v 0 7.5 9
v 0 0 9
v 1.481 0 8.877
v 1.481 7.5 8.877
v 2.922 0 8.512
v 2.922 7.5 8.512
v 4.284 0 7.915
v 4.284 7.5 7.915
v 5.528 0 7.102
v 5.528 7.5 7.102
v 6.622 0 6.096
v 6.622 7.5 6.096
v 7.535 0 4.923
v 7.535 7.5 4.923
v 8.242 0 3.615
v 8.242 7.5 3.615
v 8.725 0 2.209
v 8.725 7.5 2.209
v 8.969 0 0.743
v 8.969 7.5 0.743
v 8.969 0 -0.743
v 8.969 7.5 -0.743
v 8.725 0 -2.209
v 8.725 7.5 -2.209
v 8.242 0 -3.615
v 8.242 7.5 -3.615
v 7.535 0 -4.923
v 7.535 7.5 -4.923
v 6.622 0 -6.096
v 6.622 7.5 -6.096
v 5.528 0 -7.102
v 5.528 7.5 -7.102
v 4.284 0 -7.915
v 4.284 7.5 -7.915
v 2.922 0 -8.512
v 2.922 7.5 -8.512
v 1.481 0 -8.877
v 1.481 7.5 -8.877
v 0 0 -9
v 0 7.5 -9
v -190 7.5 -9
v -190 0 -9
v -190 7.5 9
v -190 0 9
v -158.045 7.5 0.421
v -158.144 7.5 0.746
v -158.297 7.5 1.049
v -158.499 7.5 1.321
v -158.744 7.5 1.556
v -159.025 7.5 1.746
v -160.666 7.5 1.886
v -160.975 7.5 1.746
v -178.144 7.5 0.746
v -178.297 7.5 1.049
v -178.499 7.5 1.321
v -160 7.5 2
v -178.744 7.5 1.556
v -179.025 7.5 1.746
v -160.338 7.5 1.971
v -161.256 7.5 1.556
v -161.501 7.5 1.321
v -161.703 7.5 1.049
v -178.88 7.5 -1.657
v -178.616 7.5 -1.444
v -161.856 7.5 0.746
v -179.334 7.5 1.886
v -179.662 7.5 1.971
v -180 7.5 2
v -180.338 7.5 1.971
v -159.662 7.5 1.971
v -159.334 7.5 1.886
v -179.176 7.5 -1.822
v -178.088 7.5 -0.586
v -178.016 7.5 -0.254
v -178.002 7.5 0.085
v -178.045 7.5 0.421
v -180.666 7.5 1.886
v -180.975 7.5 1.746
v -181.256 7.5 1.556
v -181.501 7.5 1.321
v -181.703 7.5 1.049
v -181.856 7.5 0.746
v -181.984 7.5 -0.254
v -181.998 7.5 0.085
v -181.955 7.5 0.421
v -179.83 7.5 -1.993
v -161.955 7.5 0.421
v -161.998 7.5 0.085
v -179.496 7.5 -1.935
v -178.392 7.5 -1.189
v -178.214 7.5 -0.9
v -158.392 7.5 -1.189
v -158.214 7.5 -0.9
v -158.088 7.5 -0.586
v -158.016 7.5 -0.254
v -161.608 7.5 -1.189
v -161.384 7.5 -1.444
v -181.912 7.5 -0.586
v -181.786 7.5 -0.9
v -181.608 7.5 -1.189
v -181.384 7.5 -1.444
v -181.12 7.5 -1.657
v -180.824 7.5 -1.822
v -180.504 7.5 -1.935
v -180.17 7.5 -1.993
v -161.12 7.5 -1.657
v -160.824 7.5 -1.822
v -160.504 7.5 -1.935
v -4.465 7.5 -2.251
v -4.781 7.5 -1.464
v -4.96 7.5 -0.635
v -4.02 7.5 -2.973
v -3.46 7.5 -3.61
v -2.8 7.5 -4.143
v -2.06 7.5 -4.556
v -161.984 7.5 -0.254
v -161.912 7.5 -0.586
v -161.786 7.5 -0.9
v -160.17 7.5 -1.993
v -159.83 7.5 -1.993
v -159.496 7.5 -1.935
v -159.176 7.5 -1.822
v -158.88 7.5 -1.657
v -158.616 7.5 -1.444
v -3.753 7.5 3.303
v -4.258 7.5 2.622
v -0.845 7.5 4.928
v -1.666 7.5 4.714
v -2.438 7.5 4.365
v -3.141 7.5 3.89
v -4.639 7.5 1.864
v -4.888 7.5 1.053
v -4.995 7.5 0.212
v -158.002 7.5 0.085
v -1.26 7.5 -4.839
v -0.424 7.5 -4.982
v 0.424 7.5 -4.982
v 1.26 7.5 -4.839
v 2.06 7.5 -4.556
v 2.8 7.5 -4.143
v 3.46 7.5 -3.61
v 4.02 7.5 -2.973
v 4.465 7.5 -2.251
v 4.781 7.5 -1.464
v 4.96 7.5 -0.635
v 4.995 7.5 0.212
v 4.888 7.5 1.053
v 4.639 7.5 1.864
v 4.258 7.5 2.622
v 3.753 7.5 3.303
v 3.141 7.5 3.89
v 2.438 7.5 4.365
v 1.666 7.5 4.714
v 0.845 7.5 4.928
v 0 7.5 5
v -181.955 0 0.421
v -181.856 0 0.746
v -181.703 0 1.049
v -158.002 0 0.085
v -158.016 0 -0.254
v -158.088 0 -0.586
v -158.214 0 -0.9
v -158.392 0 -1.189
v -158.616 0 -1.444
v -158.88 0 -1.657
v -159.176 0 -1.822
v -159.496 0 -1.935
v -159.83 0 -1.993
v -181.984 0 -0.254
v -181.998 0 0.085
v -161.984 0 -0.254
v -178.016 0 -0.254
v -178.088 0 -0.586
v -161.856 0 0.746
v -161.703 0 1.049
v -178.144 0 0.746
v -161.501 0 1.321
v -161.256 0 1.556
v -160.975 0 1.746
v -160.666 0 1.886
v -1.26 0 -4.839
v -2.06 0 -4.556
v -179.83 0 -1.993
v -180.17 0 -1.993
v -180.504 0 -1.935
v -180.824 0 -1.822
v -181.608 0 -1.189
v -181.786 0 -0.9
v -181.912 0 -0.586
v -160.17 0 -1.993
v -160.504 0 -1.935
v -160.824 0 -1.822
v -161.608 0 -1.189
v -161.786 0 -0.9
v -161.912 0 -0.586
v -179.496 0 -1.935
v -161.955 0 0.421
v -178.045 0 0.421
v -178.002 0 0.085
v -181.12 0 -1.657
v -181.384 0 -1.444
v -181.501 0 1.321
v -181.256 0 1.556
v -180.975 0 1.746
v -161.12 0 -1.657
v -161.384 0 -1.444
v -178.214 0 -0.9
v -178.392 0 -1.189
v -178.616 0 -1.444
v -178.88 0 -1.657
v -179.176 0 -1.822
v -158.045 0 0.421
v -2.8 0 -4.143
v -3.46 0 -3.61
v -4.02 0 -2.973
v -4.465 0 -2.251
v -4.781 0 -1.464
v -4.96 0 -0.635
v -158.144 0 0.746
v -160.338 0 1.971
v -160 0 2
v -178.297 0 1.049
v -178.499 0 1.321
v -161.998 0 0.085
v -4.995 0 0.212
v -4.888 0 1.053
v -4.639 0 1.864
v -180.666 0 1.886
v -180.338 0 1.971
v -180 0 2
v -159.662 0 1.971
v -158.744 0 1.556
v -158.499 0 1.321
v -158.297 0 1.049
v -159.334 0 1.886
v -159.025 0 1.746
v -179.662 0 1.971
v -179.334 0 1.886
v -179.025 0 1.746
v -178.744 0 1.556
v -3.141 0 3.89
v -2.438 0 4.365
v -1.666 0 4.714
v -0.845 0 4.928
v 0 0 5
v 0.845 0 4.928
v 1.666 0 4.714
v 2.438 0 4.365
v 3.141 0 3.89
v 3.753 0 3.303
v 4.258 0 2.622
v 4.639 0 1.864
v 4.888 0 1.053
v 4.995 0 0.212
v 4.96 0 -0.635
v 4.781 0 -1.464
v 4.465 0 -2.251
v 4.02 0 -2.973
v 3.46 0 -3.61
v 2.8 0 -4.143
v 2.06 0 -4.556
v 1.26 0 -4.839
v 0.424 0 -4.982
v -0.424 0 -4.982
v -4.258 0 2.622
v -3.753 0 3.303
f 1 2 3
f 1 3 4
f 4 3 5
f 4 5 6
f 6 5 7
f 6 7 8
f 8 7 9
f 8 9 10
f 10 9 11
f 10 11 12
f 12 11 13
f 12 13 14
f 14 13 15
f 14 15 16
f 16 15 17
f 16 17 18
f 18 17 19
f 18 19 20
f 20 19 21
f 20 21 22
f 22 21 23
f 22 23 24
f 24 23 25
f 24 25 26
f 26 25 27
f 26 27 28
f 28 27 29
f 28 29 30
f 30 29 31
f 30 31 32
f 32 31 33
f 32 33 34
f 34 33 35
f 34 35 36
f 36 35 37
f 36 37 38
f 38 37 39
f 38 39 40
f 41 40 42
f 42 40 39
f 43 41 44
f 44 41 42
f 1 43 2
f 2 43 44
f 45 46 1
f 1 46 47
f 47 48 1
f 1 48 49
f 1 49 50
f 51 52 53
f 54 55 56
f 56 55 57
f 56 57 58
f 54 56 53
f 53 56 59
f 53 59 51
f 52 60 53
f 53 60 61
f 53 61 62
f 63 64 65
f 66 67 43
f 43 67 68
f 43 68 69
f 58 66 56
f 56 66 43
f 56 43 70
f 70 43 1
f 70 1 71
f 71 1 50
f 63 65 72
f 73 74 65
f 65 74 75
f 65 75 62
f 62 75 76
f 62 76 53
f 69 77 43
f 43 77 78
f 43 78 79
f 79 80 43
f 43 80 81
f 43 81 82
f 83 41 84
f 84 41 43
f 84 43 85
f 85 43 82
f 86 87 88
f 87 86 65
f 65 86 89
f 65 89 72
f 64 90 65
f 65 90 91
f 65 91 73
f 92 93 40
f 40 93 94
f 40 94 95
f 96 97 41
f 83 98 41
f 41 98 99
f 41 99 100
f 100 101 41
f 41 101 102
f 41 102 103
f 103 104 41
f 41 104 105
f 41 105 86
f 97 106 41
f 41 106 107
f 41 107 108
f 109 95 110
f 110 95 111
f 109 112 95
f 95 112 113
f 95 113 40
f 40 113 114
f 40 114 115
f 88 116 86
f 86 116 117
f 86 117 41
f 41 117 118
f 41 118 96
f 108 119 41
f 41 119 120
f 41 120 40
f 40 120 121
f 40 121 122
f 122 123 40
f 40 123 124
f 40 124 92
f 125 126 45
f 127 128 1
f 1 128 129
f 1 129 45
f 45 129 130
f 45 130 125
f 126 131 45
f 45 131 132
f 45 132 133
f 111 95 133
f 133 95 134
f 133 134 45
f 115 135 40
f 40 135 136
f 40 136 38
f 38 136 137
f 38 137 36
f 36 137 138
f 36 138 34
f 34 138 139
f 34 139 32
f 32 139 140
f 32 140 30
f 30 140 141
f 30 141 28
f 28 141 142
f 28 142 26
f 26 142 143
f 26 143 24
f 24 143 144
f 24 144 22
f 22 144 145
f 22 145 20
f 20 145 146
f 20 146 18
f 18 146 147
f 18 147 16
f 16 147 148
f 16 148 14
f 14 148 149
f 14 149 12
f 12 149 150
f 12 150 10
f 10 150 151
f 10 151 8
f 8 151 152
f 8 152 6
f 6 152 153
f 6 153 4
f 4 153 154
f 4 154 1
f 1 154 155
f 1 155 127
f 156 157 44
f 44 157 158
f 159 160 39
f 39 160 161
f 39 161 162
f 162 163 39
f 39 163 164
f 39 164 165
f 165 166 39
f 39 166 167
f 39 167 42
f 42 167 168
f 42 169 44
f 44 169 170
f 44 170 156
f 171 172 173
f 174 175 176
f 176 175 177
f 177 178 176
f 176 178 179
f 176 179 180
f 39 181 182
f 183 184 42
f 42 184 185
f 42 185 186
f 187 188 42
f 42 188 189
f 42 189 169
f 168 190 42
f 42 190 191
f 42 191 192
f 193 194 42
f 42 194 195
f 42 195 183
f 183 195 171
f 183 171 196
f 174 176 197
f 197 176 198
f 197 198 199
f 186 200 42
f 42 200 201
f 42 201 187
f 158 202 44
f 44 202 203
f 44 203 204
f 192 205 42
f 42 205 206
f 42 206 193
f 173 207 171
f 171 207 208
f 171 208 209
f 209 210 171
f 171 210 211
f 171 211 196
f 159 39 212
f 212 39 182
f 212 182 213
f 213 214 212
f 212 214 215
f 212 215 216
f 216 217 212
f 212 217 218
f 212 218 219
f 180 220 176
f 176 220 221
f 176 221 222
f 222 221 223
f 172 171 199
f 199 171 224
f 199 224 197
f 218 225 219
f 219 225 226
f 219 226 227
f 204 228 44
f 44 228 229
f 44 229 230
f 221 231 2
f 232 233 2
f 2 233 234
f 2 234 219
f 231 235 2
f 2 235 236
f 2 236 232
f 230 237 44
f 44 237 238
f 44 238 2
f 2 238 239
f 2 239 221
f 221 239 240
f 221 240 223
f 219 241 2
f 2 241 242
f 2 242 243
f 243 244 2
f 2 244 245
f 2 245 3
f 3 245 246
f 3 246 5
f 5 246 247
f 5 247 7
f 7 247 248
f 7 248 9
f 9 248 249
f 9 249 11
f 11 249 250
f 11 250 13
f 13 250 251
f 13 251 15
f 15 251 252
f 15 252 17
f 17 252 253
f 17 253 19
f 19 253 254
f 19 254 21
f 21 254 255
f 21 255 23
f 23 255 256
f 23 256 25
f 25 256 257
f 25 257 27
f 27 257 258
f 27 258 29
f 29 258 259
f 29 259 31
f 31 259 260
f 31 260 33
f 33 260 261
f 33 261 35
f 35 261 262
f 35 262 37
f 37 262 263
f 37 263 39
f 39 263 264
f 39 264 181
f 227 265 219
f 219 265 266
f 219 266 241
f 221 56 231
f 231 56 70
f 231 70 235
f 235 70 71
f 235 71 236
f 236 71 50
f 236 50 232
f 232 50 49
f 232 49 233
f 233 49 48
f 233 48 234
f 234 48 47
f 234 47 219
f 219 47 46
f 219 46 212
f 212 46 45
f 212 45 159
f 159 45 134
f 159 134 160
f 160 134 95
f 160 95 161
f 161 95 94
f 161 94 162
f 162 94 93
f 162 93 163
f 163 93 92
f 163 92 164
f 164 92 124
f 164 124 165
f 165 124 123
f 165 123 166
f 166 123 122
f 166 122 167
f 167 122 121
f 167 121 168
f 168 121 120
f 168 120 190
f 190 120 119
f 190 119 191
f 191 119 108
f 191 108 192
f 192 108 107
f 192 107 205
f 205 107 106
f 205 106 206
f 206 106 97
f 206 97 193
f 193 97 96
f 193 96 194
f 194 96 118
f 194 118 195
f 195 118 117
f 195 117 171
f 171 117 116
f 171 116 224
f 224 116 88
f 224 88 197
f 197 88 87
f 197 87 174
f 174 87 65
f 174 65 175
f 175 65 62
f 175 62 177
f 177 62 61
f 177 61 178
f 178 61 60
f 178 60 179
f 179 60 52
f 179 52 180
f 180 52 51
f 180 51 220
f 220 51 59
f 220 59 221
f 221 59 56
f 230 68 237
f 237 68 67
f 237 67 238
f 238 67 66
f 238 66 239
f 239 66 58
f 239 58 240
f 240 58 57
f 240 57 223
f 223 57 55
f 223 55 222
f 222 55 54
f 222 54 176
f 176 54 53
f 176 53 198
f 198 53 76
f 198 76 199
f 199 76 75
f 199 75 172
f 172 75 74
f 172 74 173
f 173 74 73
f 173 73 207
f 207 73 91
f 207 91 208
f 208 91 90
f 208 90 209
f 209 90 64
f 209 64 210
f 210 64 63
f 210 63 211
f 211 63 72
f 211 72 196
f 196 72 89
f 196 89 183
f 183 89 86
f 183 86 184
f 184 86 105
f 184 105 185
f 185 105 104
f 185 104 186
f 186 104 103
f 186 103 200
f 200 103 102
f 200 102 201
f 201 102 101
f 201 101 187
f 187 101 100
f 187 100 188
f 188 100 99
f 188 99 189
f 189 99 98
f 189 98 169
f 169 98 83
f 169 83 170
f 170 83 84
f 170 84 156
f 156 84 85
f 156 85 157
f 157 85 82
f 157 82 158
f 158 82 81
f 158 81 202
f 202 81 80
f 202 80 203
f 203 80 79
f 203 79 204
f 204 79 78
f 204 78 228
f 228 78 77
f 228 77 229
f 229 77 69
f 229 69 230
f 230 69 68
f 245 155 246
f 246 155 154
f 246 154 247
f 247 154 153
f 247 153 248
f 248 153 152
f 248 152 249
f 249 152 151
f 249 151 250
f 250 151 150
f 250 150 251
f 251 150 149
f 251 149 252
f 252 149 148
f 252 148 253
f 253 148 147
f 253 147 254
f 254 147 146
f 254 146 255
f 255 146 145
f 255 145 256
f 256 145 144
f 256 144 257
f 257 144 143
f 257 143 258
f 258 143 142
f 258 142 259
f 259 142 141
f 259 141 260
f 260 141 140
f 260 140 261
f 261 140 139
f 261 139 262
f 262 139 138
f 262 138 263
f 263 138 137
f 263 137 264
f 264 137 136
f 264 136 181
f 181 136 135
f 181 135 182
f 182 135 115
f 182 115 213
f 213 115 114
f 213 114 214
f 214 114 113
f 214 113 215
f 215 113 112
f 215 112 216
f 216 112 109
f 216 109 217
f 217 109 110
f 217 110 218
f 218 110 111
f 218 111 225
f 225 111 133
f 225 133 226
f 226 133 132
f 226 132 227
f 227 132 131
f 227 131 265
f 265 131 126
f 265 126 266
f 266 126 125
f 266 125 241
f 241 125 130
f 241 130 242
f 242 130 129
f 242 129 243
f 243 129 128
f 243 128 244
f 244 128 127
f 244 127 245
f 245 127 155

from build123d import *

# Parameters (mm, degrees)
BOSS_EXTRUDE1_DEPTH = 7.5
SKETCH2_R           = 2
CUT_EXTRUDE1_DEPTH  = 191.360841561
SKETCH3_R           = 5
CUT_EXTRUDE2_DEPTH  = 191.360841561


with BuildPart() as part:
    # Sketch1 → Boss-Extrude1 (new body)
    with BuildSketch(Plane(origin=(0, 0, 0), x_dir=(1, 0, 0), z_dir=(0, 1, 0))):
        with BuildLine():
            Line((0, 9), (-190, 9))
            Line((-190, 9), (-190, -9))
            Line((-190, -9), (0, -9))
            ThreePointArc((0, -9), (9, 0), (0, 9))
        make_face()
    extrude(amount=BOSS_EXTRUDE1_DEPTH)

    # Sketch2 → Cut-Extrude1 (cut, through all)
    with BuildSketch(Plane(origin=(0, 7.5, 0), x_dir=(1, 0, 0), z_dir=(0, 1, 0))):
        with Locations(Location((-180, 0, 0), (0, 0, 270))):
            Circle(SKETCH2_R)
        with Locations(Location((-160, 0, 0), (0, 0, 270))):
            Circle(SKETCH2_R)
    extrude(amount=-CUT_EXTRUDE1_DEPTH, mode=Mode.SUBTRACT)

    # Sketch3 → Cut-Extrude2 (cut, through all)
    with BuildSketch(Plane(origin=(0, 7.5, 0), x_dir=(1, 0, 0), z_dir=(0, 1, 0))):
        with Locations(Location((0, 0, 0), (0, 0, 270))):
            Circle(SKETCH3_R)
    extrude(amount=-CUT_EXTRUDE2_DEPTH, mode=Mode.SUBTRACT)


solid = part.part
